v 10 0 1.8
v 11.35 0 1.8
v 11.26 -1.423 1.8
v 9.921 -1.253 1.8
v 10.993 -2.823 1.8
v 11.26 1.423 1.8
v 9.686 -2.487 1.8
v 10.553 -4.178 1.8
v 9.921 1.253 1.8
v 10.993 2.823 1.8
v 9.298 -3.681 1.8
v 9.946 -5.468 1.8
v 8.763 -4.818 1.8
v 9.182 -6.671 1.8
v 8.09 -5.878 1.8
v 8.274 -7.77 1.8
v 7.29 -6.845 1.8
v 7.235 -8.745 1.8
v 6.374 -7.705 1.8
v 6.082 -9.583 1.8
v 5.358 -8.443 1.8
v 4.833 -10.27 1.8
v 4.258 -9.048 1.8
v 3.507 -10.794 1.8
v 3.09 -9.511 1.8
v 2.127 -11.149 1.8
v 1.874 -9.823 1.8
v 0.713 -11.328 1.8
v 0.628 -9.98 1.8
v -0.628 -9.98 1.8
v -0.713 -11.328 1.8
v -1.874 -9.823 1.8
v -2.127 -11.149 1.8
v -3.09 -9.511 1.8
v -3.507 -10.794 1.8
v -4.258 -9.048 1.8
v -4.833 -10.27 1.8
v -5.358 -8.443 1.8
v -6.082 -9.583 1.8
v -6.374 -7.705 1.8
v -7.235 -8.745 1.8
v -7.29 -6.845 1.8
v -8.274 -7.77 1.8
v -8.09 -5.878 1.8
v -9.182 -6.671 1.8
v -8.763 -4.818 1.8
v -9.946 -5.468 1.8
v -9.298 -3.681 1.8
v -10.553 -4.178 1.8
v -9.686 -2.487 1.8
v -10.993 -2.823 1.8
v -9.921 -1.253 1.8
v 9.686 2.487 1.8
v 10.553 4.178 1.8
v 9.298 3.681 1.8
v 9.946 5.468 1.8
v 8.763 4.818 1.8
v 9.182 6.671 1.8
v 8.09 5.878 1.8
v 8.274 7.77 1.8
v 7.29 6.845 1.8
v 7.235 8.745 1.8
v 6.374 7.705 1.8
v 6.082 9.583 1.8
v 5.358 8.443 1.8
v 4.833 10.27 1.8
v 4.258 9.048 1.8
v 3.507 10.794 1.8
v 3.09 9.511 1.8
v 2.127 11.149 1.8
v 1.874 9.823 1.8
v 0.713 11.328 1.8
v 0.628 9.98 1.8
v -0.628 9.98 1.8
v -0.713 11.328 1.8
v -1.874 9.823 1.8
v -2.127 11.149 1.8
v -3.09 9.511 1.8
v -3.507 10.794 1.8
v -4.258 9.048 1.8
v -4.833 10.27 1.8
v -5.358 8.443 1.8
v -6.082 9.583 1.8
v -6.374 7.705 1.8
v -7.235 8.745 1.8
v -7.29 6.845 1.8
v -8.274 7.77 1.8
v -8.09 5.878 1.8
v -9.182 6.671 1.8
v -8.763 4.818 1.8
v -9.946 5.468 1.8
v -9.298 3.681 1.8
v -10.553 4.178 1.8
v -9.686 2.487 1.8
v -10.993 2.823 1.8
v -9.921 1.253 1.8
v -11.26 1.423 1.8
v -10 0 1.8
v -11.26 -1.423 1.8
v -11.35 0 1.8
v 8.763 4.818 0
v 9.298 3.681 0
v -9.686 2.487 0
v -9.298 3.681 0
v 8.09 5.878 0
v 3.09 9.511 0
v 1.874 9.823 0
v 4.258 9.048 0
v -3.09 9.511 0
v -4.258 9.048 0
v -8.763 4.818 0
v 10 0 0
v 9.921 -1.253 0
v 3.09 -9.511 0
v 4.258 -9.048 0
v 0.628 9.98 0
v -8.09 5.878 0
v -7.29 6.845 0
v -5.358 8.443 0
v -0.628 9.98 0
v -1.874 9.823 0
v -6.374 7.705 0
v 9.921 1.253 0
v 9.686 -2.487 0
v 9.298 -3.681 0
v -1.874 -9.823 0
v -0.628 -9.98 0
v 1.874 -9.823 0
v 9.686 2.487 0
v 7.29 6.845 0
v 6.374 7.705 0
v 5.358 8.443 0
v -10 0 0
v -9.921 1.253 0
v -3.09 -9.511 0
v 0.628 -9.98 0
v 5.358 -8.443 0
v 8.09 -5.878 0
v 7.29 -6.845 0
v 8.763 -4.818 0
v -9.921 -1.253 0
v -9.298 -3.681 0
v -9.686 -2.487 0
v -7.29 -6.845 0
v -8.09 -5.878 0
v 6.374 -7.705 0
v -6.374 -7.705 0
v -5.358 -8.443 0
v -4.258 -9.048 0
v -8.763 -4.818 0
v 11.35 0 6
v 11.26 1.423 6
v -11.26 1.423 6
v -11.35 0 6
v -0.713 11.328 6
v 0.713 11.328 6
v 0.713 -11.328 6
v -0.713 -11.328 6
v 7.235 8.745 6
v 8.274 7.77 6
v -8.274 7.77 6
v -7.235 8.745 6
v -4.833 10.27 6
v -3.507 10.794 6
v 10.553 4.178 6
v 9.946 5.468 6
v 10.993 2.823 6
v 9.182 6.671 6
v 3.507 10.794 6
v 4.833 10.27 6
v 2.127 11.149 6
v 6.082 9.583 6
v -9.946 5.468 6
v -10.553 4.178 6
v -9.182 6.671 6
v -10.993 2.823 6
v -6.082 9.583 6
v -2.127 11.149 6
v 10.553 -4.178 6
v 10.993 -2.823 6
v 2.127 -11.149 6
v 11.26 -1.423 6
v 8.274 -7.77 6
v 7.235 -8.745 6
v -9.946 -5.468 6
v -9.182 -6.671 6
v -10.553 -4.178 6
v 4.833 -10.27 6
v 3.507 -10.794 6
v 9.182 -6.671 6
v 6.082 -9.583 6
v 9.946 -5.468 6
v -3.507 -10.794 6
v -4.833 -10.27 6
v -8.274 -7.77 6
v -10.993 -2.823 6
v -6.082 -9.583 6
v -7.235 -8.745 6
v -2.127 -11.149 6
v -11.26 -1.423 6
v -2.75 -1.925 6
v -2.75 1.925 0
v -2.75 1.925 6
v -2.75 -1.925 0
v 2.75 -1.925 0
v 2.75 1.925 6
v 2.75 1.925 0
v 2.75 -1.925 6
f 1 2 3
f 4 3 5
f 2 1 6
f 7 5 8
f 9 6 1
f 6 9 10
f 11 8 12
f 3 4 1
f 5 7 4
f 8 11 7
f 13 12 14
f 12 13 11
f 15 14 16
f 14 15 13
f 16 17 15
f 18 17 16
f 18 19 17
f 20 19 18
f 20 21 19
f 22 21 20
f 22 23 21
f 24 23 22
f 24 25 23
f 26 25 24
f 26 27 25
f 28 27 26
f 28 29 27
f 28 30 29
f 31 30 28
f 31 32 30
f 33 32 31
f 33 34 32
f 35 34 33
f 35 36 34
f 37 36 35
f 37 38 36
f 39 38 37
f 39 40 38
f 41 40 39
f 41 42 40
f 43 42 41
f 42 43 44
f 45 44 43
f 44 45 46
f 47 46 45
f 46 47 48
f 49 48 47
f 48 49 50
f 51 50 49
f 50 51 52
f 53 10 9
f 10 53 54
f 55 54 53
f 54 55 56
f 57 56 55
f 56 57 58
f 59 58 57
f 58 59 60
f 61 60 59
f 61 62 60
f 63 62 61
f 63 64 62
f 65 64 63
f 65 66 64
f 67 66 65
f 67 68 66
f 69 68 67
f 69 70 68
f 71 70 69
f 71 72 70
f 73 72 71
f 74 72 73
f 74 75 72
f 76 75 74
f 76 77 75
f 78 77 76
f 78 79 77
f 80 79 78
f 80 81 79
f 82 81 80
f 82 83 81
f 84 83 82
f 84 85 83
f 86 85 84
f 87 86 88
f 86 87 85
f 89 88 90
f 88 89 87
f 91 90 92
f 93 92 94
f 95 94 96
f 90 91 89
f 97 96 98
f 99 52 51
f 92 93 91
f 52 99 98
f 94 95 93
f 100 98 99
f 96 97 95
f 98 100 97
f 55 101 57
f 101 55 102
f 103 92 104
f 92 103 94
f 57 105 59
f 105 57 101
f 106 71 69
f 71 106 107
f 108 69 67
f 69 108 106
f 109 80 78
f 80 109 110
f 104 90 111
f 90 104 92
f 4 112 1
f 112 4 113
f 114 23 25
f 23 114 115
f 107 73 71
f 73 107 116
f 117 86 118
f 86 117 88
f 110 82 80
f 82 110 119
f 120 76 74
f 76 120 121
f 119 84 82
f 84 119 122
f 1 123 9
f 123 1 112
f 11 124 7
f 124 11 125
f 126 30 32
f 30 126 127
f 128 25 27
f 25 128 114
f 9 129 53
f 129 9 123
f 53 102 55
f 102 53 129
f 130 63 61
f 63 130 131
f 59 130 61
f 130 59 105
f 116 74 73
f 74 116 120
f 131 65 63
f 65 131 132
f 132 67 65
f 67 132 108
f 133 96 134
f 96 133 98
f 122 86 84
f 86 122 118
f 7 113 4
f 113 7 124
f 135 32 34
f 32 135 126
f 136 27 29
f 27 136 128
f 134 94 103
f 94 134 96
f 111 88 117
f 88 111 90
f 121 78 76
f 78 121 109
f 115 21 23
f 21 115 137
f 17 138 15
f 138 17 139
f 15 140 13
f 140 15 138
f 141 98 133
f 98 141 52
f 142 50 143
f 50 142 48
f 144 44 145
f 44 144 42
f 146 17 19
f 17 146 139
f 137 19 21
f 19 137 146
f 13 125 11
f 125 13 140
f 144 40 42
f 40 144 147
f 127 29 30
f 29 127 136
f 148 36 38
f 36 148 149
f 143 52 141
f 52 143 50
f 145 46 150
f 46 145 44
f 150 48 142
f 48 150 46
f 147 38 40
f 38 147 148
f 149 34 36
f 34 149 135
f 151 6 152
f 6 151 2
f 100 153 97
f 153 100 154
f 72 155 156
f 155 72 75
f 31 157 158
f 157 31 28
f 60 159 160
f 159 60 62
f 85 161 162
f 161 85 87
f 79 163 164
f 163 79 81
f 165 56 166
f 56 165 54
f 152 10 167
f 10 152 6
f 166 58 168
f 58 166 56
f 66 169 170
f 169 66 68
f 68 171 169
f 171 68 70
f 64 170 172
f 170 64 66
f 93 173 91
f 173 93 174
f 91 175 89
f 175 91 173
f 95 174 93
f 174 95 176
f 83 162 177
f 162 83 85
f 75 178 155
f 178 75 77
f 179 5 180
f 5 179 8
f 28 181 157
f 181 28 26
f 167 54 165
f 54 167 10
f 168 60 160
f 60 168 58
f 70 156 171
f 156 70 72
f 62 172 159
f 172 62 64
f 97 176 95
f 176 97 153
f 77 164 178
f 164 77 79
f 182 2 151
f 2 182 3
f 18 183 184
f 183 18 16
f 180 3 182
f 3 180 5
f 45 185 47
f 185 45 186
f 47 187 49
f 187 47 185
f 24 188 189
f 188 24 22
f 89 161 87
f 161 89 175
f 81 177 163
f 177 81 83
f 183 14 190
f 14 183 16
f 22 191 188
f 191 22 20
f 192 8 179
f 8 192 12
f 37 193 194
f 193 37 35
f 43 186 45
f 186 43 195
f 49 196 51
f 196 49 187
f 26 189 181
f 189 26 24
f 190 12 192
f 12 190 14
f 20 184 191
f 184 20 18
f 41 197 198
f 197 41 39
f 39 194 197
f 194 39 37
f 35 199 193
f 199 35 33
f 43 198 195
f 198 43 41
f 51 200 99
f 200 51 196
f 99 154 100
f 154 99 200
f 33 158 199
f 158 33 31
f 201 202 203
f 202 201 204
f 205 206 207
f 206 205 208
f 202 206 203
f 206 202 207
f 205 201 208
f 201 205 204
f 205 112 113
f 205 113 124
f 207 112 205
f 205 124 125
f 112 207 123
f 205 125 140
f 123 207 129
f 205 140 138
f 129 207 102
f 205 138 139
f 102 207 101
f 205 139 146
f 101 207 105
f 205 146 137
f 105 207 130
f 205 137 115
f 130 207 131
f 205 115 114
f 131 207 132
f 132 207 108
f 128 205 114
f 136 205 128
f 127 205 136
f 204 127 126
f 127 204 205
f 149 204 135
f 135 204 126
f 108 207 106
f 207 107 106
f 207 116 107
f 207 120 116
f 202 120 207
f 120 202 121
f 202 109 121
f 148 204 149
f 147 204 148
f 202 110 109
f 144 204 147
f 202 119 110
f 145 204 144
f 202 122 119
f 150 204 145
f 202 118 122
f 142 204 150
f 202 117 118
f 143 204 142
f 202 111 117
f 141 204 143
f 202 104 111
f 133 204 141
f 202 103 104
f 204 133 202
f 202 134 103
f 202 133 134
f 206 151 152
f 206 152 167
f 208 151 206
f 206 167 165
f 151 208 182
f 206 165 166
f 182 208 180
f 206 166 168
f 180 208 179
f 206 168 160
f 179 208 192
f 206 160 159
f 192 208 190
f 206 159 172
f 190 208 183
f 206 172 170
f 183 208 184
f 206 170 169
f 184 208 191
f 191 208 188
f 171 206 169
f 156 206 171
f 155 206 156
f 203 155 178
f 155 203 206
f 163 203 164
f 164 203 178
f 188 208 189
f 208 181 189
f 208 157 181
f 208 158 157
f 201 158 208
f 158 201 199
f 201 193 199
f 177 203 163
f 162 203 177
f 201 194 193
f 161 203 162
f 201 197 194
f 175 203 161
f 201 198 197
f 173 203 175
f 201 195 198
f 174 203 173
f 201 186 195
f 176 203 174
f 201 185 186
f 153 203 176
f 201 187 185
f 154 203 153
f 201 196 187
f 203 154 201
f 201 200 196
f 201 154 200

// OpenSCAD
$fn = 50;


difference() {
	union() {
		*color(alpha = 1.0000000000, c = "gray") {
			translate(v = [0, 7, 0]) {
				linear_extrude(height = 12) {
					text(font = "Arial:style=Bold", halign = "center", size = 4.5000000000, text = "COMMENT bearing_plate_plate", valign = "center");
				}
			}
		}
		*color(alpha = 1.0000000000, c = "gray") {
			translate(v = [0, 14, 0]) {
				linear_extrude(height = 12) {
					text(font = "Arial:style=Bold", halign = "center", size = 4.5000000000, text = "COMMENT description oobb_cylinder_shape_p_type_12_depth_3_width_12_height_12_thickness_motor_gearmotor_01_shaft_p_t_12.0_radius_all_mode", valign = "center");
				}
			}
		}
		translate(v = [0, 0, -6.0000000000]) {
			cylinder(h = 12, r = 12.0000000000);
		}
		*color(alpha = 1.0000000000, c = "gray") {
			translate(v = [0, 7, 0]) {
				linear_extrude(height = 1) {
					text(font = "Arial:style=Bold", halign = "center", size = 4.5000000000, text = "COMMENT bearing_plate_slice", valign = "center");
				}
			}
		}
	}
	union() {
		translate(v = [18.0000000000, 0, -6.0000000000]) {
			rotate(a = [0, 180, 30.0000000000]) {
				difference() {
					union() {
						translate(v = [0, 0, -12.0000000000]) {
							cylinder(h = 12, r = 1.5000000000);
						}
						translate(v = [0, 0, -12.0000000000]) {
							linear_extrude(height = 2.5000000000) {
								polygon(points = [[3.4620000000, 0.0000000000], [1.7310000000, 2.9981799479], [-1.7310000000, 2.9981799479], [-3.4620000000, 0.0000000000], [-1.7310000000, -2.9981799479], [1.7310000000, -2.9981799479]]);
							}
						}
						translate(v = [-1.7500000000, -3.2500000000, -9.5000000000]) {
							cube(size = [3.5000000000, 6.5000000000, 0.3000000000]);
						}
						translate(v = [-1.7500000000, -1.7500000000, -9.2000000000]) {
							cube(size = [3.5000000000, 3.5000000000, 0.3000000000]);
						}
						translate(v = [-1.7500000000, -3.2500000000, -12.3000000000]) {
							cube(size = [3.5000000000, 6.5000000000, 0.3000000000]);
						}
						translate(v = [-1.7500000000, -1.7500000000, -12.6000000000]) {
							cube(size = [3.5000000000, 3.5000000000, 0.3000000000]);
						}
						translate(v = [0, 0, -0.9500000000]) {
							cylinder(r1 = 1.8000000000, r2 = 3.6000000000);
						}
						translate(v = [0, 0, -12.0000000000]) {
							cylinder(h = 12, r = 1.8000000000);
						}
						translate(v = [0, 0, -12.0000000000]) {
							linear_extrude(height = 2.5000000000) {
								polygon(points = [[3.4620000000, 0.0000000000], [1.7310000000, 2.9981799479], [-1.7310000000, 2.9981799479], [-3.4620000000, 0.0000000000], [-1.7310000000, -2.9981799479], [1.7310000000, -2.9981799479]]);
							}
						}
						translate(v = [-1.7500000000, -3.2500000000, -9.5000000000]) {
							cube(size = [3.5000000000, 6.5000000000, 0.3000000000]);
						}
						translate(v = [-1.7500000000, -1.7500000000, -9.2000000000]) {
							cube(size = [3.5000000000, 3.5000000000, 0.3000000000]);
						}
						translate(v = [-1.7500000000, -3.2500000000, -12.3000000000]) {
							cube(size = [3.5000000000, 6.5000000000, 0.3000000000]);
						}
						translate(v = [-1.7500000000, -1.7500000000, -12.6000000000]) {
							cube(size = [3.5000000000, 3.5000000000, 0.3000000000]);
						}
						translate(v = [0, 0, -12.0000000000]) {
							cylinder(h = 12, r = 1.5000000000);
						}
						translate(v = [0, 0, -12.0000000000]) {
							linear_extrude(height = 2.5000000000) {
								polygon(points = [[3.4620000000, 0.0000000000], [1.7310000000, 2.9981799479], [-1.7310000000, 2.9981799479], [-3.4620000000, 0.0000000000], [-1.7310000000, -2.9981799479], [1.7310000000, -2.9981799479]]);
							}
						}
						translate(v = [-1.7500000000, -3.2500000000, -9.5000000000]) {
							cube(size = [3.5000000000, 6.5000000000, 0.3000000000]);
						}
						translate(v = [-1.7500000000, -1.7500000000, -9.2000000000]) {
							cube(size = [3.5000000000, 3.5000000000, 0.3000000000]);
						}
						translate(v = [-1.7500000000, -3.2500000000, -12.3000000000]) {
							cube(size = [3.5000000000, 6.5000000000, 0.3000000000]);
						}
						translate(v = [-1.7500000000, -1.7500000000, -12.6000000000]) {
							cube(size = [3.5000000000, 3.5000000000, 0.3000000000]);
						}
					}
					union();
				}
			}
		}
		translate(v = [-18.0000000000, 0, -6.0000000000]) {
			rotate(a = [0, 180, 30.0000000000]) {
				difference() {
					union() {
						translate(v = [0, 0, -12.0000000000]) {
							cylinder(h = 12, r = 1.5000000000);
						}
						translate(v = [0, 0, -12.0000000000]) {
							linear_extrude(height = 2.5000000000) {
								polygon(points = [[3.4620000000, 0.0000000000], [1.7310000000, 2.9981799479], [-1.7310000000, 2.9981799479], [-3.4620000000, 0.0000000000], [-1.7310000000, -2.9981799479], [1.7310000000, -2.9981799479]]);
							}
						}
						translate(v = [-1.7500000000, -3.2500000000, -9.5000000000]) {
							cube(size = [3.5000000000, 6.5000000000, 0.3000000000]);
						}
						translate(v = [-1.7500000000, -1.7500000000, -9.2000000000]) {
							cube(size = [3.5000000000, 3.5000000000, 0.3000000000]);
						}
						translate(v = [-1.7500000000, -3.2500000000, -12.3000000000]) {
							cube(size = [3.5000000000, 6.5000000000, 0.3000000000]);
						}
						translate(v = [-1.7500000000, -1.7500000000, -12.6000000000]) {
							cube(size = [3.5000000000, 3.5000000000, 0.3000000000]);
						}
						translate(v = [0, 0, -0.9500000000]) {
							cylinder(r1 = 1.8000000000, r2 = 3.6000000000);
						}
						translate(v = [0, 0, -12.0000000000]) {
							cylinder(h = 12, r = 1.8000000000);
						}
						translate(v = [0, 0, -12.0000000000]) {
							linear_extrude(height = 2.5000000000) {
								polygon(points = [[3.4620000000, 0.0000000000], [1.7310000000, 2.9981799479], [-1.7310000000, 2.9981799479], [-3.4620000000, 0.0000000000], [-1.7310000000, -2.9981799479], [1.7310000000, -2.9981799479]]);
							}
						}
						translate(v = [-1.7500000000, -3.2500000000, -9.5000000000]) {
							cube(size = [3.5000000000, 6.5000000000, 0.3000000000]);
						}
						translate(v = [-1.7500000000, -1.7500000000, -9.2000000000]) {
							cube(size = [3.5000000000, 3.5000000000, 0.3000000000]);
						}
						translate(v = [-1.7500000000, -3.2500000000, -12.3000000000]) {
							cube(size = [3.5000000000, 6.5000000000, 0.3000000000]);
						}
						translate(v = [-1.7500000000, -1.7500000000, -12.6000000000]) {
							cube(size = [3.5000000000, 3.5000000000, 0.3000000000]);
						}
						translate(v = [0, 0, -12.0000000000]) {
							cylinder(h = 12, r = 1.5000000000);
						}
						translate(v = [0, 0, -12.0000000000]) {
							linear_extrude(height = 2.5000000000) {
								polygon(points = [[3.4620000000, 0.0000000000], [1.7310000000, 2.9981799479], [-1.7310000000, 2.9981799479], [-3.4620000000, 0.0000000000], [-1.7310000000, -2.9981799479], [1.7310000000, -2.9981799479]]);
							}
						}
						translate(v = [-1.7500000000, -3.2500000000, -9.5000000000]) {
							cube(size = [3.5000000000, 6.5000000000, 0.3000000000]);
						}
						translate(v = [-1.7500000000, -1.7500000000, -9.2000000000]) {
							cube(size = [3.5000000000, 3.5000000000, 0.3000000000]);
						}
						translate(v = [-1.7500000000, -3.2500000000, -12.3000000000]) {
							cube(size = [3.5000000000, 6.5000000000, 0.3000000000]);
						}
						translate(v = [-1.7500000000, -1.7500000000, -12.6000000000]) {
							cube(size = [3.5000000000, 3.5000000000, 0.3000000000]);
						}
					}
					union();
				}
			}
		}
		translate(v = [0, 18.0000000000, 6.0000000000]) {
			rotate(a = [0, 0, 0]) {
				difference() {
					union() {
						translate(v = [0, 0, -12.0000000000]) {
							cylinder(h = 12, r = 1.5000000000);
						}
						translate(v = [0, 0, -12.0000000000]) {
							linear_extrude(height = 2.5000000000) {
								polygon(points = [[3.4620000000, 0.0000000000], [1.7310000000, 2.9981799479], [-1.7310000000, 2.9981799479], [-3.4620000000, 0.0000000000], [-1.7310000000, -2.9981799479], [1.7310000000, -2.9981799479]]);
							}
						}
						translate(v = [-1.7500000000, -3.2500000000, -9.5000000000]) {
							cube(size = [3.5000000000, 6.5000000000, 0.3000000000]);
						}
						translate(v = [-1.7500000000, -1.7500000000, -9.2000000000]) {
							cube(size = [3.5000000000, 3.5000000000, 0.3000000000]);
						}
						translate(v = [-1.7500000000, -3.2500000000, -12.3000000000]) {
							cube(size = [3.5000000000, 6.5000000000, 0.3000000000]);
						}
						translate(v = [-1.7500000000, -1.7500000000, -12.6000000000]) {
							cube(size = [3.5000000000, 3.5000000000, 0.3000000000]);
						}
						translate(v = [0, 0, -0.9500000000]) {
							cylinder(r1 = 1.8000000000, r2 = 3.6000000000);
						}
						translate(v = [0, 0, -12.0000000000]) {
							cylinder(h = 12, r = 1.8000000000);
						}
						translate(v = [0, 0, -12.0000000000]) {
							linear_extrude(height = 2.5000000000) {
								polygon(points = [[3.4620000000, 0.0000000000], [1.7310000000, 2.9981799479], [-1.7310000000, 2.9981799479], [-3.4620000000, 0.0000000000], [-1.7310000000, -2.9981799479], [1.7310000000, -2.9981799479]]);
							}
						}
						translate(v = [-1.7500000000, -3.2500000000, -9.5000000000]) {
							cube(size = [3.5000000000, 6.5000000000, 0.3000000000]);
						}
						translate(v = [-1.7500000000, -1.7500000000, -9.2000000000]) {
							cube(size = [3.5000000000, 3.5000000000, 0.3000000000]);
						}
						translate(v = [-1.7500000000, -3.2500000000, -12.3000000000]) {
							cube(size = [3.5000000000, 6.5000000000, 0.3000000000]);
						}
						translate(v = [-1.7500000000, -1.7500000000, -12.6000000000]) {
							cube(size = [3.5000000000, 3.5000000000, 0.3000000000]);
						}
						translate(v = [0, 0, -12.0000000000]) {
							cylinder(h = 12, r = 1.5000000000);
						}
						translate(v = [0, 0, -12.0000000000]) {
							linear_extrude(height = 2.5000000000) {
								polygon(points = [[3.4620000000, 0.0000000000], [1.7310000000, 2.9981799479], [-1.7310000000, 2.9981799479], [-3.4620000000, 0.0000000000], [-1.7310000000, -2.9981799479], [1.7310000000, -2.9981799479]]);
							}
						}
						translate(v = [-1.7500000000, -3.2500000000, -9.5000000000]) {
							cube(size = [3.5000000000, 6.5000000000, 0.3000000000]);
						}
						translate(v = [-1.7500000000, -1.7500000000, -9.2000000000]) {
							cube(size = [3.5000000000, 3.5000000000, 0.3000000000]);
						}
						translate(v = [-1.7500000000, -3.2500000000, -12.3000000000]) {
							cube(size = [3.5000000000, 6.5000000000, 0.3000000000]);
						}
						translate(v = [-1.7500000000, -1.7500000000, -12.6000000000]) {
							cube(size = [3.5000000000, 3.5000000000, 0.3000000000]);
						}
					}
					union();
				}
			}
		}
		translate(v = [0, -18.0000000000, 6.0000000000]) {
			rotate(a = [0, 0, 0]) {
				difference() {
					union() {
						translate(v = [0, 0, -12.0000000000]) {
							cylinder(h = 12, r = 1.5000000000);
						}
						translate(v = [0, 0, -12.0000000000]) {
							linear_extrude(height = 2.5000000000) {
								polygon(points = [[3.4620000000, 0.0000000000], [1.7310000000, 2.9981799479], [-1.7310000000, 2.9981799479], [-3.4620000000, 0.0000000000], [-1.7310000000, -2.9981799479], [1.7310000000, -2.9981799479]]);
							}
						}
						translate(v = [-1.7500000000, -3.2500000000, -9.5000000000]) {
							cube(size = [3.5000000000, 6.5000000000, 0.3000000000]);
						}
						translate(v = [-1.7500000000, -1.7500000000, -9.2000000000]) {
							cube(size = [3.5000000000, 3.5000000000, 0.3000000000]);
						}
						translate(v = [-1.7500000000, -3.2500000000, -12.3000000000]) {
							cube(size = [3.5000000000, 6.5000000000, 0.3000000000]);
						}
						translate(v = [-1.7500000000, -1.7500000000, -12.6000000000]) {
							cube(size = [3.5000000000, 3.5000000000, 0.3000000000]);
						}
						translate(v = [0, 0, -0.9500000000]) {
							cylinder(r1 = 1.8000000000, r2 = 3.6000000000);
						}
						translate(v = [0, 0, -12.0000000000]) {
							cylinder(h = 12, r = 1.8000000000);
						}
						translate(v = [0, 0, -12.0000000000]) {
							linear_extrude(height = 2.5000000000) {
								polygon(points = [[3.4620000000, 0.0000000000], [1.7310000000, 2.9981799479], [-1.7310000000, 2.9981799479], [-3.4620000000, 0.0000000000], [-1.7310000000, -2.9981799479], [1.7310000000, -2.9981799479]]);
							}
						}
						translate(v = [-1.7500000000, -3.2500000000, -9.5000000000]) {
							cube(size = [3.5000000000, 6.5000000000, 0.3000000000]);
						}
						translate(v = [-1.7500000000, -1.7500000000, -9.2000000000]) {
							cube(size = [3.5000000000, 3.5000000000, 0.3000000000]);
						}
						translate(v = [-1.7500000000, -3.2500000000, -12.3000000000]) {
							cube(size = [3.5000000000, 6.5000000000, 0.3000000000]);
						}
						translate(v = [-1.7500000000, -1.7500000000, -12.6000000000]) {
							cube(size = [3.5000000000, 3.5000000000, 0.3000000000]);
						}
						translate(v = [0, 0, -12.0000000000]) {
							cylinder(h = 12, r = 1.5000000000);
						}
						translate(v = [0, 0, -12.0000000000]) {
							linear_extrude(height = 2.5000000000) {
								polygon(points = [[3.4620000000, 0.0000000000], [1.7310000000, 2.9981799479], [-1.7310000000, 2.9981799479], [-3.4620000000, 0.0000000000], [-1.7310000000, -2.9981799479], [1.7310000000, -2.9981799479]]);
							}
						}
						translate(v = [-1.7500000000, -3.2500000000, -9.5000000000]) {
							cube(size = [3.5000000000, 6.5000000000, 0.3000000000]);
						}
						translate(v = [-1.7500000000, -1.7500000000, -9.2000000000]) {
							cube(size = [3.5000000000, 3.5000000000, 0.3000000000]);
						}
						translate(v = [-1.7500000000, -3.2500000000, -12.3000000000]) {
							cube(size = [3.5000000000, 6.5000000000, 0.3000000000]);
						}
						translate(v = [-1.7500000000, -1.7500000000, -12.6000000000]) {
							cube(size = [3.5000000000, 3.5000000000, 0.3000000000]);
						}
					}
					union();
				}
			}
		}
		*color(alpha = 1.0000000000, c = "gray") {
			translate(v = [0, 14, 0]) {
				linear_extrude(height = 3) {
					text(font = "Arial:style=Bold", halign = "center", size = 4.5000000000, text = "COMMENT description oobb_bearing_shape_n_type_12_depth_3_width_3_height_12_thickness_motor_gearmotor_01_shaft_6704_bearing", valign = "center");
				}
			}
		}
		translate(v = [0, 0, -1.8000000000]) {
			union() {
				difference() {
					cylinder(h = 3.6000000000, r = 13.7000000000);
					cylinder(h = 3.6000000000, r = 10.0000000000);
				}
				difference() {
					translate(v = [0, 0, -50]) {
						cylinder(h = 100, r = 12.3500000000);
					}
					translate(v = [0, 0, -50]) {
						cylinder(h = 100, r = 11.3500000000);
					}
				}
			}
		}
		*color(alpha = 1.0000000000, c = "gray") {
			translate(v = [0, 14, 0]) {
				linear_extrude(height = 3) {
					text(font = "Arial:style=Bold", halign = "center", size = 4.5000000000, text = "COMMENT description oobb_holes_shape_n_type_m6_radius_name_3_width_3_height_12_thickness_motor_gearmotor_01_shaft_perimeter_miss_middle_holes", valign = "center");
				}
			}
		}
		translate(v = [-15.0000000000, -15.0000000000, -50.0000000000]) {
			cylinder(h = 100, r = 3.2500000000);
		}
		translate(v = [-15.0000000000, 15.0000000000, -50.0000000000]) {
			cylinder(h = 100, r = 3.2500000000);
		}
		translate(v = [15.0000000000, -15.0000000000, -50.0000000000]) {
			cylinder(h = 100, r = 3.2500000000);
		}
		translate(v = [15.0000000000, 15.0000000000, -50.0000000000]) {
			cylinder(h = 100, r = 3.2500000000);
		}
		*color(alpha = 1.0000000000, c = "gray") {
			translate(v = [0, 14, 0]) {
				linear_extrude(height = 3) {
					text(font = "Arial:style=Bold", halign = "center", size = 4.5000000000, text = "COMMENT description oobb_motor_gearmotor_01_shape_n_type_3_width_3_height_12_thickness_motor_gearmotor_01_shaft_shaft_part", valign = "center");
				}
			}
		}
		translate(v = [-2.7500000000, -1.9250000000, -50]) {
			cube(size = [5.5000000000, 3.8500000000, 100]);
		}
		*color(alpha = 1.0000000000, c = "gray") {
			translate(v = [18.0000000000, 14, -6.0000000000]) {
				rotate(a = [0, 180, 30.0000000000]) {
					linear_extrude(height = 3) {
						text(font = "Arial:style=Bold", halign = "center", size = 4.5000000000, text = "COMMENT description oobb_screw_countersunk_shape_n_type_m3_radius_name_12_depth_18.0_0_-6.0_pos_3_width_3_height_12_thickness_motor_gearmotor_01_shaft_0_180_30.0_rot_true_nut_true_overhang", valign = "center");
					}
				}
			}
		}
		*color(alpha = 1.0000000000, c = "gray") {
			translate(v = [-18.0000000000, 14, -6.0000000000]) {
				rotate(a = [0, 180, 30.0000000000]) {
					linear_extrude(height = 3) {
						text(font = "Arial:style=Bold", halign = "center", size = 4.5000000000, text = "COMMENT description oobb_screw_countersunk_shape_n_type_m3_radius_name_12_depth_-18.0_0_-6.0_pos_3_width_3_height_12_thickness_motor_gearmotor_01_shaft_0_180_30.0_rot_true_nut_true_overhang", valign = "center");
					}
				}
			}
		}
		*color(alpha = 1.0000000000, c = "gray") {
			translate(v = [0, 32.0000000000, 6.0000000000]) {
				linear_extrude(height = 3) {
					text(font = "Arial:style=Bold", halign = "center", size = 4.5000000000, text = "COMMENT description oobb_screw_countersunk_shape_n_type_m3_radius_name_12_depth_0_18.0_6.0_pos_3_width_3_height_12_thickness_motor_gearmotor_01_shaft_0_0_0_rot_true_nut_true_overhang", valign = "center");
				}
			}
		}
		*color(alpha = 1.0000000000, c = "gray") {
			translate(v = [0, -4.0000000000, 6.0000000000]) {
				linear_extrude(height = 3) {
					text(font = "Arial:style=Bold", halign = "center", size = 4.5000000000, text = "COMMENT description oobb_screw_countersunk_shape_n_type_m3_radius_name_12_depth_0_-18.0_6.0_pos_3_width_3_height_12_thickness_motor_gearmotor_01_shaft_0_0_0_rot_true_nut_true_overhang", valign = "center");
				}
			}
		}
		*color(alpha = 1.0000000000, c = "gray") {
			translate(v = [0, 14, 0]) {
				linear_extrude(height = 1) {
					text(font = "Arial:style=Bold", halign = "center", size = 4.5000000000, text = "COMMENT description oobb_slice_shape_n_type_3dpr_mode_top_zz", valign = "center");
				}
			}
		}
		translate(v = [-250, -250, -500]) {
			cube(size = [500, 500, 500]);
		}
	}
}
